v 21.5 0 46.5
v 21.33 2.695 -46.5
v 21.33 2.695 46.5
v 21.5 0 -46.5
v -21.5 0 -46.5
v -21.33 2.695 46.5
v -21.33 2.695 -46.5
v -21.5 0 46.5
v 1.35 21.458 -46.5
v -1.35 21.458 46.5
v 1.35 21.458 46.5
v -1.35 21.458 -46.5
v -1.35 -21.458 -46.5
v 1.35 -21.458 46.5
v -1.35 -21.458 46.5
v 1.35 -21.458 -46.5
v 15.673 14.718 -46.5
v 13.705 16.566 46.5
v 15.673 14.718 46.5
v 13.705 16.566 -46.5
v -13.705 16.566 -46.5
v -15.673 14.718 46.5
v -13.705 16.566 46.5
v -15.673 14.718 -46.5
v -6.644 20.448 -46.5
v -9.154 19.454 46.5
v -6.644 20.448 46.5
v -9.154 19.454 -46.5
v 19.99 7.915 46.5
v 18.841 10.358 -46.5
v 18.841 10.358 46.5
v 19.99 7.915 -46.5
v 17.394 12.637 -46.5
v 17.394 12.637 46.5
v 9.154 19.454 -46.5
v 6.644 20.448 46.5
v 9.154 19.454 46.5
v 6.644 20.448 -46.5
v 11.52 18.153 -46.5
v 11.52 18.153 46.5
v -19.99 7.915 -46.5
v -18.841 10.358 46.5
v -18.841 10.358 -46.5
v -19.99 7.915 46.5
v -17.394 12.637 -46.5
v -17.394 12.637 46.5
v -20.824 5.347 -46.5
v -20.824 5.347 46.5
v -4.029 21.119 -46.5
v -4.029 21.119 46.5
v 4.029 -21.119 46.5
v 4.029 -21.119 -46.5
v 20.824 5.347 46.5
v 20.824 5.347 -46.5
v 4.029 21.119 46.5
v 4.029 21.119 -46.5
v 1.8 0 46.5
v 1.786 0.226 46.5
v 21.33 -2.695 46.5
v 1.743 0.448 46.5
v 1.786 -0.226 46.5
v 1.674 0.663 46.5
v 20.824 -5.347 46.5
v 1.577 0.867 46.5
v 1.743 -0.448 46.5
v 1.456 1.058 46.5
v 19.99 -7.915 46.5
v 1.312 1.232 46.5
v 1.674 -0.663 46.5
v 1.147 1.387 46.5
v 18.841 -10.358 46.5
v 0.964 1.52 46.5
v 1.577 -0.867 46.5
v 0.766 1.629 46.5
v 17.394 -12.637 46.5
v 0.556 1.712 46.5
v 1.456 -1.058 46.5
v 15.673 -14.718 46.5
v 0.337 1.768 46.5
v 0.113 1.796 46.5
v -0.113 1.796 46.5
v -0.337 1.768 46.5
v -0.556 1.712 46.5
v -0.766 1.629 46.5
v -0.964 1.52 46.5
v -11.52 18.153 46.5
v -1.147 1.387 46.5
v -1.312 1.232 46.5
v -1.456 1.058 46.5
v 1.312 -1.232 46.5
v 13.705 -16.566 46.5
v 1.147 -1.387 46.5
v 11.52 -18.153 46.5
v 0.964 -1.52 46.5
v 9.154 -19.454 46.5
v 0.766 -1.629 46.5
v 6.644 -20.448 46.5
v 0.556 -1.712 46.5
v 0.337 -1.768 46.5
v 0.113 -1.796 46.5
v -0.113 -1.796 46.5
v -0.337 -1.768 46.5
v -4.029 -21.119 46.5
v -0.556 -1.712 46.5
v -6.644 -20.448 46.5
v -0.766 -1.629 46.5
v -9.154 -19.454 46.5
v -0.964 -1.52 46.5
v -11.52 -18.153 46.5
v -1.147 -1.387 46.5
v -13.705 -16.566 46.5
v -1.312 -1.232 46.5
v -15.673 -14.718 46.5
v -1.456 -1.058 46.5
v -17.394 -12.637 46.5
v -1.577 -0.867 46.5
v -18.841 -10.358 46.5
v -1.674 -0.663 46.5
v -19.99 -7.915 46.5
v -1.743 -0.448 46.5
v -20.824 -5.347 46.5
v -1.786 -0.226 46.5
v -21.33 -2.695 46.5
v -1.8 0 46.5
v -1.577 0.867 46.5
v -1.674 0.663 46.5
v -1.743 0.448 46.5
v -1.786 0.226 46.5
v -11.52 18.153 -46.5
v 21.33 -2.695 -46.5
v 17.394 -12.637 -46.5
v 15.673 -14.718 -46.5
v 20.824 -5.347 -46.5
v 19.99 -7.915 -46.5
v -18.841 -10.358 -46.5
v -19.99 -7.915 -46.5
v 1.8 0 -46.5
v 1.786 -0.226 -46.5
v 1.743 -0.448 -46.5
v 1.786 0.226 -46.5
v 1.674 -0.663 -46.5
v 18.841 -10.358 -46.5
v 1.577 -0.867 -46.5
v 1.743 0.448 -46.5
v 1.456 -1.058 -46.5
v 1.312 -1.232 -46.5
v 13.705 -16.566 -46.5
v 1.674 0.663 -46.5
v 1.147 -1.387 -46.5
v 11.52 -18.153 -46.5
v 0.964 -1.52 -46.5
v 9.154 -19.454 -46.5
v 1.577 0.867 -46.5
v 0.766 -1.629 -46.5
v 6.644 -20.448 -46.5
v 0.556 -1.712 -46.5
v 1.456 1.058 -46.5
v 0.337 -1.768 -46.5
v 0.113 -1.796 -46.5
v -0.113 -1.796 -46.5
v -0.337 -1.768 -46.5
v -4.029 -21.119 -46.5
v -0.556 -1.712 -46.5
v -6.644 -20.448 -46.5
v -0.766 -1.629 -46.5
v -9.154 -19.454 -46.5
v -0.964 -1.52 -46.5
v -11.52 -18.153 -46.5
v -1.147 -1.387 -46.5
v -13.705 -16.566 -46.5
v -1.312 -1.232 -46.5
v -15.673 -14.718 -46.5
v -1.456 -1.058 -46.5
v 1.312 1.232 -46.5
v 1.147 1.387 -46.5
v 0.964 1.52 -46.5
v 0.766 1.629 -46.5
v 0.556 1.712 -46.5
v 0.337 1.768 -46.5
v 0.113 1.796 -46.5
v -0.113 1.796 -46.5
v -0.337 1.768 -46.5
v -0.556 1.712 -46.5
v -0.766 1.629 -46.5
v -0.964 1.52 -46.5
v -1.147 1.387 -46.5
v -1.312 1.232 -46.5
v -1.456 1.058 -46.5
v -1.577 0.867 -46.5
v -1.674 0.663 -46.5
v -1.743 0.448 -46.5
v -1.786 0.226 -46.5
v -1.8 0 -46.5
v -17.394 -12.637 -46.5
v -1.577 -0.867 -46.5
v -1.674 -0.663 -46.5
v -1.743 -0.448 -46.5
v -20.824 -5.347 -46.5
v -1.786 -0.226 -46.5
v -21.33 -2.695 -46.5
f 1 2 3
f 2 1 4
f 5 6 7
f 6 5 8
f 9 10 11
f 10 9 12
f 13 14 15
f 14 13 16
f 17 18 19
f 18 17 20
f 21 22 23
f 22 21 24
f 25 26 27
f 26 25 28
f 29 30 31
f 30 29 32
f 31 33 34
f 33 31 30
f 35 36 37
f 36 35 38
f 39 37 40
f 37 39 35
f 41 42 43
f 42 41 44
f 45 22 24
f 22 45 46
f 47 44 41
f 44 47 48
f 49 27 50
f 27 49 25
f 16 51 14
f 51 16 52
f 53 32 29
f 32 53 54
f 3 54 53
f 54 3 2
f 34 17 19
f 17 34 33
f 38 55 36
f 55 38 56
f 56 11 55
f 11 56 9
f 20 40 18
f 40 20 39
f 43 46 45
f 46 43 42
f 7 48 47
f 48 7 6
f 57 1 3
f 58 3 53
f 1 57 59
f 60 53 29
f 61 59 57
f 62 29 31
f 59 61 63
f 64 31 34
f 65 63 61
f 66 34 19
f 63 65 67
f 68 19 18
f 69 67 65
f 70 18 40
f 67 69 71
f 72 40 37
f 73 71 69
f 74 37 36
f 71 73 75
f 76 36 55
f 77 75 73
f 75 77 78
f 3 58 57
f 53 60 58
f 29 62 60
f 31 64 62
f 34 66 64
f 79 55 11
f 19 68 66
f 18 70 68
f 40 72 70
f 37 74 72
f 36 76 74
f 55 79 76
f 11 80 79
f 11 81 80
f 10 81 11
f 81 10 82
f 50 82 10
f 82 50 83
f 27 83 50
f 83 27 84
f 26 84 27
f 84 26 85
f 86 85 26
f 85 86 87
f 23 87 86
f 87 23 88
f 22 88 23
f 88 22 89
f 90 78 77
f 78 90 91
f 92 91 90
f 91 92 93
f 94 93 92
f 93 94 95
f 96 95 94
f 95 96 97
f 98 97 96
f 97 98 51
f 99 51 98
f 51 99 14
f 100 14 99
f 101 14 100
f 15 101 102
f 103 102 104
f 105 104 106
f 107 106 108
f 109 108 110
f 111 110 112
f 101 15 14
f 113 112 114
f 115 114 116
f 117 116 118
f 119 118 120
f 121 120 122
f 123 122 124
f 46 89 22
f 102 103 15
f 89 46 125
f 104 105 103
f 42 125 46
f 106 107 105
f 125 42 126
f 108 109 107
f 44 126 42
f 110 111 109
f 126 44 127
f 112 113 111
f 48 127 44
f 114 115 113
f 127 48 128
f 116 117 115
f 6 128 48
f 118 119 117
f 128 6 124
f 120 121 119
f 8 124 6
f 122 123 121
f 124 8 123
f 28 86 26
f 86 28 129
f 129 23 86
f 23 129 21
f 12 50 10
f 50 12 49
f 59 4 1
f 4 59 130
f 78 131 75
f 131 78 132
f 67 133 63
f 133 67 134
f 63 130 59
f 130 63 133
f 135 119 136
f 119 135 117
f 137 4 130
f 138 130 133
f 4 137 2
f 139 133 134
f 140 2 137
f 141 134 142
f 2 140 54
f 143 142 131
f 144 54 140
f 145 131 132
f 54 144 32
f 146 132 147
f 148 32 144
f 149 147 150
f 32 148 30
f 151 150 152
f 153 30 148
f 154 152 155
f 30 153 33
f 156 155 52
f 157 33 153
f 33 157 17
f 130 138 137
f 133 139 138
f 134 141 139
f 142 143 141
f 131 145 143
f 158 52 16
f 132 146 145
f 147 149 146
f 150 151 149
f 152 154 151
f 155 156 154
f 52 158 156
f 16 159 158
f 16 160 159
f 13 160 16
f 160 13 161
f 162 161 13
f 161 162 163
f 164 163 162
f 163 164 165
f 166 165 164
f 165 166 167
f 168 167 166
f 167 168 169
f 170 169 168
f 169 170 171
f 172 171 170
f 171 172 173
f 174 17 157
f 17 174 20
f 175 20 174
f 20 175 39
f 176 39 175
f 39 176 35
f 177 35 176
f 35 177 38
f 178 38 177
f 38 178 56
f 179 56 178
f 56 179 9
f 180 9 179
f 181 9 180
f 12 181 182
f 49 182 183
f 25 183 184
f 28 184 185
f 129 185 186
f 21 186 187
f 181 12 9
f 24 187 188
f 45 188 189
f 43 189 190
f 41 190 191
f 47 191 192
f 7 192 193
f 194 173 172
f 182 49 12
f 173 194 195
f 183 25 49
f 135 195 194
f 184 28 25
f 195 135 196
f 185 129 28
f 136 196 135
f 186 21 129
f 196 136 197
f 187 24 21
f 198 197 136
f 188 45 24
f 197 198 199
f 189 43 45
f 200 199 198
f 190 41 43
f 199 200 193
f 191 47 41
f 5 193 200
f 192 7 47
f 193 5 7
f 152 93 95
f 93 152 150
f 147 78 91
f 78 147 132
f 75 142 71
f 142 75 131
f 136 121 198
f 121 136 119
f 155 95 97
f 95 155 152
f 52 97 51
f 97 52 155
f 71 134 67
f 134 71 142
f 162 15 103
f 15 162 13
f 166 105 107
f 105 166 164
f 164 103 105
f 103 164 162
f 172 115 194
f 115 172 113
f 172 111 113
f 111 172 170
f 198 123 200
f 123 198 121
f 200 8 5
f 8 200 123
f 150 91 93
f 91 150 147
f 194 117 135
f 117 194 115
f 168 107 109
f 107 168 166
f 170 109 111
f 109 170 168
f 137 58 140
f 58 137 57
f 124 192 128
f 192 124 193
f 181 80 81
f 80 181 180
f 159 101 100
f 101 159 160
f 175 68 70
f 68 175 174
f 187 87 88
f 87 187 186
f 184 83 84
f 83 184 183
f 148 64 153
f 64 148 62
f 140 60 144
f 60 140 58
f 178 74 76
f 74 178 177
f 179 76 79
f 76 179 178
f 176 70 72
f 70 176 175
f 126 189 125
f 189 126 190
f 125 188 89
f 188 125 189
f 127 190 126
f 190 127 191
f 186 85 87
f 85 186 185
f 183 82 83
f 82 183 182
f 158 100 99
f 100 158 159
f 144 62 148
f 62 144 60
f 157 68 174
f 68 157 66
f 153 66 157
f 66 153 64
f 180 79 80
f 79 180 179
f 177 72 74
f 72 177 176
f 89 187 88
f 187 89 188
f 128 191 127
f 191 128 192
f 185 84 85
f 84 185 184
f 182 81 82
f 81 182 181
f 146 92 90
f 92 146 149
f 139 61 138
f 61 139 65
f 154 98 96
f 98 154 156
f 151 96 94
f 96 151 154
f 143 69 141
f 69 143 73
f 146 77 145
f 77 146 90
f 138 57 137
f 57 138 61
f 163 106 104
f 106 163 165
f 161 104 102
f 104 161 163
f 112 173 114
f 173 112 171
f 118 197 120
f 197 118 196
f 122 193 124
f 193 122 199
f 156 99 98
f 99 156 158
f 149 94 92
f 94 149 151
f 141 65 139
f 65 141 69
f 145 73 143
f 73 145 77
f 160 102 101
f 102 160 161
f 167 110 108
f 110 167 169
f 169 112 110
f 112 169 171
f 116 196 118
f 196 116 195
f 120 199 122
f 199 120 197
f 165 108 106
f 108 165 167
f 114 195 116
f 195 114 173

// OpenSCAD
$fn = 50;


difference() {
	union() {
		translate(v = [0, 0, -46.5000000000]) {
			cylinder(h = 93, r = 21.5000000000);
		}
	}
	union() {
		translate(v = [0, 0, -100.0000000000]) {
			cylinder(h = 200, r = 1.8000000000);
		}
	}
}
